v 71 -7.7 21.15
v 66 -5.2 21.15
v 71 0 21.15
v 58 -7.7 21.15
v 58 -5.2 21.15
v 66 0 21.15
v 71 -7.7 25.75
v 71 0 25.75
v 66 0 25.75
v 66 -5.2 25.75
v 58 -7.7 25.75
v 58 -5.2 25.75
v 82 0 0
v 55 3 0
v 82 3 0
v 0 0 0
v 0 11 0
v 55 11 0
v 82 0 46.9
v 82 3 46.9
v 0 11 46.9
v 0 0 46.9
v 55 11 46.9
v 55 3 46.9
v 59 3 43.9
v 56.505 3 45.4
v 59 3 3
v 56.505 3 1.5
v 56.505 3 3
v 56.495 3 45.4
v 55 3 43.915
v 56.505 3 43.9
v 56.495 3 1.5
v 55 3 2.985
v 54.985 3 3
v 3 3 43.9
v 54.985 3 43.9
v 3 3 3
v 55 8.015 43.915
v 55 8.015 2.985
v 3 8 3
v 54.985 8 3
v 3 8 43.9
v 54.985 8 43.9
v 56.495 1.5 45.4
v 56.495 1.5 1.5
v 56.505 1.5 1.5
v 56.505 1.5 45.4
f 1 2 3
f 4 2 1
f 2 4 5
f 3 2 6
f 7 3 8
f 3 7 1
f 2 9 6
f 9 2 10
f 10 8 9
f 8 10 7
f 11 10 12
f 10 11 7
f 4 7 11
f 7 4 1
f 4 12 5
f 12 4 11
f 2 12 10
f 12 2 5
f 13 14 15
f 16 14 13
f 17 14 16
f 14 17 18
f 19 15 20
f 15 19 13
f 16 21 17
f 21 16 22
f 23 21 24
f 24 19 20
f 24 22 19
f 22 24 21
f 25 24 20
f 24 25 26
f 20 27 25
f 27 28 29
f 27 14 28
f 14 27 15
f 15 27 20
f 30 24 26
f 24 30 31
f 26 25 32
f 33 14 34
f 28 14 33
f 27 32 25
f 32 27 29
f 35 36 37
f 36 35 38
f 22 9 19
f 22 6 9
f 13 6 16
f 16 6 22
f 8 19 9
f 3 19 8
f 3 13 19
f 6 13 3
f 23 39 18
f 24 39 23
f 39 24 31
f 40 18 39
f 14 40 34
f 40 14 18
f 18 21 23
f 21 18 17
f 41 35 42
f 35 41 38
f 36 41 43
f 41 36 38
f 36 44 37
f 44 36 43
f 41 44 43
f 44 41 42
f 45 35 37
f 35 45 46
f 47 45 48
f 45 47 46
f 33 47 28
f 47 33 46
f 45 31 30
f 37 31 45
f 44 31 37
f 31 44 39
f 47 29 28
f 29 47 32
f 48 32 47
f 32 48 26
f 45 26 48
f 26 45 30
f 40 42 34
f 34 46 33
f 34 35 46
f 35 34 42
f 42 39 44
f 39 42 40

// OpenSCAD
// file: ../../lib/skadis_holder.scad
/* Reusable IKEA SKADIS pocket holder.

   A back plate that lies flat on the pegboard, a single-slot hook, and an
   open-topped pocket. The held item stands vertically in the pocket and is
   retained by gravity, not friction - lift it straight out.

   SKADIS geometry used:
       slot        5 mm wide x 15 mm tall, vertical oval
       board       5.0 - 5.2 mm thick

   Deliberately engages ONE slot. Sources disagree on whether the pitch is 20
   or 40 mm, and a single-slot hook does not care - it fits any SKADIS board.
   The cost is that the holder could pivot about that one point; the back plate
   is sized tall and wide enough to bear on the board and damp it.

   Hook fits by tilting the holder up, pushing the tongue through the slot, then
   lowering. The slot is 15 mm tall against a 5 mm tongue, so there is 10 mm of
   drop, and the rear lip lands behind the board.

   Usage:
       use <../lib/skadis_holder.scad>
       skadis_holder(item_w = 39.90, item_t = 4.0);
*/

module skadis_holder(
    item_w,
    item_t,

    fit_clear = 1.0,
    pocket_h  = 55.0,

    wall     = 3.0,
    plate_t  = 3.0,
    plate_h  = 82.0,

    board_t   = 5.2,
    tongue_w  = 4.6,
    tongue_h  = 5.0,
    tongue_ex = 2.5,
    lip_t     = 2.5,
    lip_drop  = 8.0,

    lead_in = 1.5
) {
    pw = item_w + fit_clear;
    pd = item_t + fit_clear;

    outer_w  = pw + 2 * wall;
    pocket_y = plate_t;
    front_y  = pocket_y + pd + wall;

    hook_z = plate_h - 16;
    eps    = 0.01;

    /* Board face sits at y = 0. The holder lives at +y, the hook reaches
       to -y through the slot. */
    module plate() {
        translate([-outer_w / 2, 0, 0])
            cube([outer_w, plate_t, plate_h]);
    }

    module pocket_block() {
        translate([-outer_w / 2, 0, 0])
            cube([outer_w, front_y, pocket_h]);
    }

    module pocket_void() {
        translate([-pw / 2, pocket_y, wall])
            cube([pw, pd, pocket_h + 1]);
    }

    /* Flares the pocket mouth so the item drops in without hunting for it. */
    module mouth() {
        translate([0, pocket_y + pd / 2, pocket_h])
            hull() {
                translate([0, 0, -eps])
                    cube([pw, pd, eps], center = true);
                translate([0, 0, lead_in])
                    cube([pw + 2 * lead_in, pd + 2 * lead_in, eps],
                         center = true);
            }
    }

    module hook() {
        translate([-tongue_w / 2, -(board_t + tongue_ex), hook_z])
            cube([tongue_w, board_t + tongue_ex + eps, tongue_h]);
        translate([-tongue_w / 2, -(board_t + tongue_ex),
                   hook_z - lip_drop])
            cube([tongue_w, lip_t, lip_drop + tongue_h]);
    }

    difference() {
        union() {
            plate();
            pocket_block();
            hook();
        }
        pocket_void();
        mouth();
    }
}
// main file
/* SKADIS holder for a 50 cm ruler. Print one.

   Ruler measured 39.90 mm wide, 4.0 mm thick. It stands vertically in the
   pocket with its flat face against the board, held by gravity.

   Single-slot hook, so board pitch does not matter - fits any SKADIS.

   EXPORTED ALREADY ROTATED into its print orientation, lying on its side.
   Upright, the hook's rear lip spans z 58-71 while the tongue joining it to the
   back plate only starts at z 66, so between 58 and 66 the lip is a floating
   island and the slicer refuses it. On its side there is no Z-overhang in the
   hook at all, and the only downward face left is the pocket ceiling - a 5 mm
   span anchored both sides, which bridges. Do not "fix" the orientation.
*/

use <../../lib/skadis_holder.scad>

$fn = 48;

item_w    = 39.90;
item_t    = 4.0;
fit_clear = 1.0;
wall      = 3.0;

/* Half the outer width, which becomes the drop height once rotated, so the
   part sits on z=0 rather than relying on the slicer to drop it. */
translate([0, 0, (item_w + fit_clear + 2 * wall) / 2])
rotate([0, 90, 0])
skadis_holder(
    item_w    = item_w,
    item_t    = item_t,
    fit_clear = fit_clear,
    wall      = wall
);
